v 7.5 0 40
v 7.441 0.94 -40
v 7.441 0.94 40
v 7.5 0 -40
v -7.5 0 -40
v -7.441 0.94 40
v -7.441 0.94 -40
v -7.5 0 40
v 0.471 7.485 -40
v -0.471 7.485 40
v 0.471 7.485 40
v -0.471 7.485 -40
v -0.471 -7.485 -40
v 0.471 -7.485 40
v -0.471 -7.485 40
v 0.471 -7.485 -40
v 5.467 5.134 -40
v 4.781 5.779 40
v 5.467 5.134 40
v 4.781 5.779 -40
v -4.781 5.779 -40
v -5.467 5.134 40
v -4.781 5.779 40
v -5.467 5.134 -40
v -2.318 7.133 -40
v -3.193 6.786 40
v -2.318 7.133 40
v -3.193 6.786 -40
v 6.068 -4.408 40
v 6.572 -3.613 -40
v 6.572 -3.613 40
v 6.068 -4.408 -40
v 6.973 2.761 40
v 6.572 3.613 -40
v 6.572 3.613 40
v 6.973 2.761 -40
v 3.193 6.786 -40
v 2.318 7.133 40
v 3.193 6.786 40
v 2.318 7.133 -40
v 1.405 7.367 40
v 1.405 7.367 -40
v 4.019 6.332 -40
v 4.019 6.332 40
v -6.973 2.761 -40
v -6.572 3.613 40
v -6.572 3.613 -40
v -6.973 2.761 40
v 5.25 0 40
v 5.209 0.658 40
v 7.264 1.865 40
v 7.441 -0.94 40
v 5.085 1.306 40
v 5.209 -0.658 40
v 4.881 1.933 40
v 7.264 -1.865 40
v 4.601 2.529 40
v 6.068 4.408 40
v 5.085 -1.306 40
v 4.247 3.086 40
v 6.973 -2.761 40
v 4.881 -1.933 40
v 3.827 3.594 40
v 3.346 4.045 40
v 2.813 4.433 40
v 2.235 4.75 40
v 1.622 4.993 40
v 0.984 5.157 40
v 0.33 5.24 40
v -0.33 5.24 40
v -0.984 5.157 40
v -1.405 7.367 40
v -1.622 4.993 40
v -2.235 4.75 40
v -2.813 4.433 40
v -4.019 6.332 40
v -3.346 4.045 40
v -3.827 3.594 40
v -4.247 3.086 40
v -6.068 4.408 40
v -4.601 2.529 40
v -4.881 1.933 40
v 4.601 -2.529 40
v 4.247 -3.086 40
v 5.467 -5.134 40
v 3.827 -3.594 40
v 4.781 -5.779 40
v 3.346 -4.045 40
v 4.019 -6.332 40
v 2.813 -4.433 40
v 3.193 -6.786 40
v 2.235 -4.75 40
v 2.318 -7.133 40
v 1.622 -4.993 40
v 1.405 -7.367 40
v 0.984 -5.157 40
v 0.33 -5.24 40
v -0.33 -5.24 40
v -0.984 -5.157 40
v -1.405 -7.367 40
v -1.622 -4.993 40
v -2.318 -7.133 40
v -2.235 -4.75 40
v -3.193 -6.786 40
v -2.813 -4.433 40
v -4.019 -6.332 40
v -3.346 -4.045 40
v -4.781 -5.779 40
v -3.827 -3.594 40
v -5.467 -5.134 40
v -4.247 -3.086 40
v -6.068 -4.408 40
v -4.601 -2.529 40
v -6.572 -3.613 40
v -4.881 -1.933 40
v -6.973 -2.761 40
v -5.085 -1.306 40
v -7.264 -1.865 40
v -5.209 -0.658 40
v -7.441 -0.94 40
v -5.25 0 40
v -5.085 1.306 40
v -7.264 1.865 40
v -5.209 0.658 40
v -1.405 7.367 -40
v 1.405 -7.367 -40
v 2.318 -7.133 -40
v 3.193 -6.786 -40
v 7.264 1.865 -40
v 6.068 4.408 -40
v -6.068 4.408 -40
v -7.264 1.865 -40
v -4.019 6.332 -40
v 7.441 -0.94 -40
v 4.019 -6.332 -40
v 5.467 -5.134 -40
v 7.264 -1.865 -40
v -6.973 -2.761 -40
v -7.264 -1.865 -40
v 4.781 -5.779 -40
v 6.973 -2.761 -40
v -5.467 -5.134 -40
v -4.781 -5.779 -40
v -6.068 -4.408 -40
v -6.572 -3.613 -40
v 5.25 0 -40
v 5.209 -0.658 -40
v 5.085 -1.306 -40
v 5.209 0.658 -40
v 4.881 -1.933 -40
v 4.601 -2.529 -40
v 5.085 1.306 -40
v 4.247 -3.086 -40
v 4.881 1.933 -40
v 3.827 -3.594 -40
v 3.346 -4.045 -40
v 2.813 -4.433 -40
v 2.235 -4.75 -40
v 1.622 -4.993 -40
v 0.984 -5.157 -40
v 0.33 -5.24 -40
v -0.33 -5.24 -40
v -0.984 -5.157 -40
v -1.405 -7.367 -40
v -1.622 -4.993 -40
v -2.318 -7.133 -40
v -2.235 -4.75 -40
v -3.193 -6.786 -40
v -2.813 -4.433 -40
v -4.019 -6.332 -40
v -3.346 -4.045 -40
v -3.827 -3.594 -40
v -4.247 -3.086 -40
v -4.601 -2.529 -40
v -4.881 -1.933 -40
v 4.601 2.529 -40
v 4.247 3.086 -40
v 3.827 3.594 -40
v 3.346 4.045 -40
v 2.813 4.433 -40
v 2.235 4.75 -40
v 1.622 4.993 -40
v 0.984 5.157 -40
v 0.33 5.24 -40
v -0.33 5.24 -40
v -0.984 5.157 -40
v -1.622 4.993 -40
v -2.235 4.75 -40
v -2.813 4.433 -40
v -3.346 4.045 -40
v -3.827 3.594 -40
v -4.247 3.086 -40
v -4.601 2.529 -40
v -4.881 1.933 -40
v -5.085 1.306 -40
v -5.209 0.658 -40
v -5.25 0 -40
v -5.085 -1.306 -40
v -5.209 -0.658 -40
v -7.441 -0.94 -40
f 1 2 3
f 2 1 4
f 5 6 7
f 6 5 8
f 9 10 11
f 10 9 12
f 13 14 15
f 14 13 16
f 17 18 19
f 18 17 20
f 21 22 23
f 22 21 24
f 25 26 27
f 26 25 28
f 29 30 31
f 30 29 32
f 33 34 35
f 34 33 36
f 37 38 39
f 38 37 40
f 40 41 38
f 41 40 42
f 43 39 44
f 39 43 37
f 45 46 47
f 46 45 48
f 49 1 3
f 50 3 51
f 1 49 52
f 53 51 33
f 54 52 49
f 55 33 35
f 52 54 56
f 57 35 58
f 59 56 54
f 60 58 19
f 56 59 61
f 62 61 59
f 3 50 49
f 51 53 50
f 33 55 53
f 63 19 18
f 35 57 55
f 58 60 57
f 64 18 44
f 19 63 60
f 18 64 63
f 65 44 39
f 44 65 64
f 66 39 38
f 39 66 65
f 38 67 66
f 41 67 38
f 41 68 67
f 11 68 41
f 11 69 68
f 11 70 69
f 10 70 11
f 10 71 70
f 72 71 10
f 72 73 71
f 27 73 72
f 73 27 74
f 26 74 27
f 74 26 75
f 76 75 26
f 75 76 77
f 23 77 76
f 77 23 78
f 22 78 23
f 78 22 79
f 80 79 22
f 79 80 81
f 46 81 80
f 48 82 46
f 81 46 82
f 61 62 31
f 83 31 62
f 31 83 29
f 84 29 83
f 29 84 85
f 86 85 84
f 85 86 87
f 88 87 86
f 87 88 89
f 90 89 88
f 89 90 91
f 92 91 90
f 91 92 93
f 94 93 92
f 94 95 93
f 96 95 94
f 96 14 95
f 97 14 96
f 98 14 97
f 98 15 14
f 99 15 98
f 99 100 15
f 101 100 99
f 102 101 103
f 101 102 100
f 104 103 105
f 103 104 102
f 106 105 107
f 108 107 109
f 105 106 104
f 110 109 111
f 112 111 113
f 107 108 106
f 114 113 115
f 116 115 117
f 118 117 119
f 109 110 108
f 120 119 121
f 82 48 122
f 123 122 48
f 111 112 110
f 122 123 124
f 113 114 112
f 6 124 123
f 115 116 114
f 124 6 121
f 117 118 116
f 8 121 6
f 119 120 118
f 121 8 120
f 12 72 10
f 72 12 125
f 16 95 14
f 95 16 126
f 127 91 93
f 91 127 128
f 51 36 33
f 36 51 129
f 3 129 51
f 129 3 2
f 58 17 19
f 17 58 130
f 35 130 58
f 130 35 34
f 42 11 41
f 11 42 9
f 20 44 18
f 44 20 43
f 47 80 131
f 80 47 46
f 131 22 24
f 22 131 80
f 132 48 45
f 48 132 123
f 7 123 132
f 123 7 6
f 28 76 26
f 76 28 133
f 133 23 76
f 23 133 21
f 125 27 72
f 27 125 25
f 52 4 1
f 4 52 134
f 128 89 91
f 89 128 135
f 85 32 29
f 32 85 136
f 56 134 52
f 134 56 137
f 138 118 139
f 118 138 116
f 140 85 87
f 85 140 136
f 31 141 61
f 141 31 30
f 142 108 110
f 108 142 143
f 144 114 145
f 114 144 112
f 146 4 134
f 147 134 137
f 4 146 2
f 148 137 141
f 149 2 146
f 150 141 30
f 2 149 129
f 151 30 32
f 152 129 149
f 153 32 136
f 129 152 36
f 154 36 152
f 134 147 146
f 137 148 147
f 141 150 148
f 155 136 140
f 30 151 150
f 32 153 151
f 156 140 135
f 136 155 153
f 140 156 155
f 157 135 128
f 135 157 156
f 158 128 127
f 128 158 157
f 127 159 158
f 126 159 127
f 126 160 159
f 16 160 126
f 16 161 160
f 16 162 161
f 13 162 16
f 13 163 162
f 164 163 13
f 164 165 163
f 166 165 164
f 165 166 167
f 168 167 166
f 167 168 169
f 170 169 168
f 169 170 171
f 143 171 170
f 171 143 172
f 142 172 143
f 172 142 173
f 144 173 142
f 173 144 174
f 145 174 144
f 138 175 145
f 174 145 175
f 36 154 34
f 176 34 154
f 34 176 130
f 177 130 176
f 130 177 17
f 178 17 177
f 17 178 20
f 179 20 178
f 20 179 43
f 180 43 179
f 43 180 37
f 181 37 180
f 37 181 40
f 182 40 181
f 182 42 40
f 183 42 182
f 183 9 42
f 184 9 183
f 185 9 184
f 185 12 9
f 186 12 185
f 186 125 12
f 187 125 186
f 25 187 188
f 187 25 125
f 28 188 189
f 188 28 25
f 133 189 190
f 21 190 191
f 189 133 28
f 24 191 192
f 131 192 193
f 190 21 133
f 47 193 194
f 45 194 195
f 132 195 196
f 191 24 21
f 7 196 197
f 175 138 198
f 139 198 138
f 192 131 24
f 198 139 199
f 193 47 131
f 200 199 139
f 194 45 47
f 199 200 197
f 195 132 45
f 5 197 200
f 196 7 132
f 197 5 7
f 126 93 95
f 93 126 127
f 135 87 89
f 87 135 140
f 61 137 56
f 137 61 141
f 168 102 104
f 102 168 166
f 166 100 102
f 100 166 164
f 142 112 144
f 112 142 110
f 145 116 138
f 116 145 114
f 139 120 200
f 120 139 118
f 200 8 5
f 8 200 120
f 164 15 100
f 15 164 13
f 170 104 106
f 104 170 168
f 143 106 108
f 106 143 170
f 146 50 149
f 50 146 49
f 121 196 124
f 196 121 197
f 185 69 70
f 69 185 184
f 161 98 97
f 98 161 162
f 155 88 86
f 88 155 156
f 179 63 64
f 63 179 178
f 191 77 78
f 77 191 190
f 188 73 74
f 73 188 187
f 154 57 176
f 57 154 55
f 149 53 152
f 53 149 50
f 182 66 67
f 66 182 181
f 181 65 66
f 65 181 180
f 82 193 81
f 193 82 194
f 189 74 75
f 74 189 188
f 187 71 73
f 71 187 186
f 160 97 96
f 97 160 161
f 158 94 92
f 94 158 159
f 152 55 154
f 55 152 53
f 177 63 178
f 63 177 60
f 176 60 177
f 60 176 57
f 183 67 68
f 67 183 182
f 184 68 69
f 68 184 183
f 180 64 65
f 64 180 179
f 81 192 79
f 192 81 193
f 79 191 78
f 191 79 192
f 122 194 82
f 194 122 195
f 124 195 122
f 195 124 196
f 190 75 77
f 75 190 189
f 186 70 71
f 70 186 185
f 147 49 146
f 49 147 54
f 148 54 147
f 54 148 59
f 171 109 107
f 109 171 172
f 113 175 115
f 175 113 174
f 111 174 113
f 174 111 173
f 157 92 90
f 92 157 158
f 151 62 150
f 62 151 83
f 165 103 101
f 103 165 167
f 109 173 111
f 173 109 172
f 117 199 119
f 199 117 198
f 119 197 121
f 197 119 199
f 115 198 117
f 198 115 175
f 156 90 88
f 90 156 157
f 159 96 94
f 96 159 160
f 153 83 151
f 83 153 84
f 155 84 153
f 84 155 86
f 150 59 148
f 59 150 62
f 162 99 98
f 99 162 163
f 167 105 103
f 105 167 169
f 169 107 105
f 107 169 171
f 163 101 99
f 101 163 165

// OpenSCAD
$fn = 50;


difference() {
	union() {
		translate(v = [0, 0, -40.0000000000]) {
			cylinder(h = 80, r = 7.5000000000);
		}
	}
	union() {
		translate(v = [0, 0, -100.0000000000]) {
			cylinder(h = 200, r = 5.2500000000);
		}
	}
}
